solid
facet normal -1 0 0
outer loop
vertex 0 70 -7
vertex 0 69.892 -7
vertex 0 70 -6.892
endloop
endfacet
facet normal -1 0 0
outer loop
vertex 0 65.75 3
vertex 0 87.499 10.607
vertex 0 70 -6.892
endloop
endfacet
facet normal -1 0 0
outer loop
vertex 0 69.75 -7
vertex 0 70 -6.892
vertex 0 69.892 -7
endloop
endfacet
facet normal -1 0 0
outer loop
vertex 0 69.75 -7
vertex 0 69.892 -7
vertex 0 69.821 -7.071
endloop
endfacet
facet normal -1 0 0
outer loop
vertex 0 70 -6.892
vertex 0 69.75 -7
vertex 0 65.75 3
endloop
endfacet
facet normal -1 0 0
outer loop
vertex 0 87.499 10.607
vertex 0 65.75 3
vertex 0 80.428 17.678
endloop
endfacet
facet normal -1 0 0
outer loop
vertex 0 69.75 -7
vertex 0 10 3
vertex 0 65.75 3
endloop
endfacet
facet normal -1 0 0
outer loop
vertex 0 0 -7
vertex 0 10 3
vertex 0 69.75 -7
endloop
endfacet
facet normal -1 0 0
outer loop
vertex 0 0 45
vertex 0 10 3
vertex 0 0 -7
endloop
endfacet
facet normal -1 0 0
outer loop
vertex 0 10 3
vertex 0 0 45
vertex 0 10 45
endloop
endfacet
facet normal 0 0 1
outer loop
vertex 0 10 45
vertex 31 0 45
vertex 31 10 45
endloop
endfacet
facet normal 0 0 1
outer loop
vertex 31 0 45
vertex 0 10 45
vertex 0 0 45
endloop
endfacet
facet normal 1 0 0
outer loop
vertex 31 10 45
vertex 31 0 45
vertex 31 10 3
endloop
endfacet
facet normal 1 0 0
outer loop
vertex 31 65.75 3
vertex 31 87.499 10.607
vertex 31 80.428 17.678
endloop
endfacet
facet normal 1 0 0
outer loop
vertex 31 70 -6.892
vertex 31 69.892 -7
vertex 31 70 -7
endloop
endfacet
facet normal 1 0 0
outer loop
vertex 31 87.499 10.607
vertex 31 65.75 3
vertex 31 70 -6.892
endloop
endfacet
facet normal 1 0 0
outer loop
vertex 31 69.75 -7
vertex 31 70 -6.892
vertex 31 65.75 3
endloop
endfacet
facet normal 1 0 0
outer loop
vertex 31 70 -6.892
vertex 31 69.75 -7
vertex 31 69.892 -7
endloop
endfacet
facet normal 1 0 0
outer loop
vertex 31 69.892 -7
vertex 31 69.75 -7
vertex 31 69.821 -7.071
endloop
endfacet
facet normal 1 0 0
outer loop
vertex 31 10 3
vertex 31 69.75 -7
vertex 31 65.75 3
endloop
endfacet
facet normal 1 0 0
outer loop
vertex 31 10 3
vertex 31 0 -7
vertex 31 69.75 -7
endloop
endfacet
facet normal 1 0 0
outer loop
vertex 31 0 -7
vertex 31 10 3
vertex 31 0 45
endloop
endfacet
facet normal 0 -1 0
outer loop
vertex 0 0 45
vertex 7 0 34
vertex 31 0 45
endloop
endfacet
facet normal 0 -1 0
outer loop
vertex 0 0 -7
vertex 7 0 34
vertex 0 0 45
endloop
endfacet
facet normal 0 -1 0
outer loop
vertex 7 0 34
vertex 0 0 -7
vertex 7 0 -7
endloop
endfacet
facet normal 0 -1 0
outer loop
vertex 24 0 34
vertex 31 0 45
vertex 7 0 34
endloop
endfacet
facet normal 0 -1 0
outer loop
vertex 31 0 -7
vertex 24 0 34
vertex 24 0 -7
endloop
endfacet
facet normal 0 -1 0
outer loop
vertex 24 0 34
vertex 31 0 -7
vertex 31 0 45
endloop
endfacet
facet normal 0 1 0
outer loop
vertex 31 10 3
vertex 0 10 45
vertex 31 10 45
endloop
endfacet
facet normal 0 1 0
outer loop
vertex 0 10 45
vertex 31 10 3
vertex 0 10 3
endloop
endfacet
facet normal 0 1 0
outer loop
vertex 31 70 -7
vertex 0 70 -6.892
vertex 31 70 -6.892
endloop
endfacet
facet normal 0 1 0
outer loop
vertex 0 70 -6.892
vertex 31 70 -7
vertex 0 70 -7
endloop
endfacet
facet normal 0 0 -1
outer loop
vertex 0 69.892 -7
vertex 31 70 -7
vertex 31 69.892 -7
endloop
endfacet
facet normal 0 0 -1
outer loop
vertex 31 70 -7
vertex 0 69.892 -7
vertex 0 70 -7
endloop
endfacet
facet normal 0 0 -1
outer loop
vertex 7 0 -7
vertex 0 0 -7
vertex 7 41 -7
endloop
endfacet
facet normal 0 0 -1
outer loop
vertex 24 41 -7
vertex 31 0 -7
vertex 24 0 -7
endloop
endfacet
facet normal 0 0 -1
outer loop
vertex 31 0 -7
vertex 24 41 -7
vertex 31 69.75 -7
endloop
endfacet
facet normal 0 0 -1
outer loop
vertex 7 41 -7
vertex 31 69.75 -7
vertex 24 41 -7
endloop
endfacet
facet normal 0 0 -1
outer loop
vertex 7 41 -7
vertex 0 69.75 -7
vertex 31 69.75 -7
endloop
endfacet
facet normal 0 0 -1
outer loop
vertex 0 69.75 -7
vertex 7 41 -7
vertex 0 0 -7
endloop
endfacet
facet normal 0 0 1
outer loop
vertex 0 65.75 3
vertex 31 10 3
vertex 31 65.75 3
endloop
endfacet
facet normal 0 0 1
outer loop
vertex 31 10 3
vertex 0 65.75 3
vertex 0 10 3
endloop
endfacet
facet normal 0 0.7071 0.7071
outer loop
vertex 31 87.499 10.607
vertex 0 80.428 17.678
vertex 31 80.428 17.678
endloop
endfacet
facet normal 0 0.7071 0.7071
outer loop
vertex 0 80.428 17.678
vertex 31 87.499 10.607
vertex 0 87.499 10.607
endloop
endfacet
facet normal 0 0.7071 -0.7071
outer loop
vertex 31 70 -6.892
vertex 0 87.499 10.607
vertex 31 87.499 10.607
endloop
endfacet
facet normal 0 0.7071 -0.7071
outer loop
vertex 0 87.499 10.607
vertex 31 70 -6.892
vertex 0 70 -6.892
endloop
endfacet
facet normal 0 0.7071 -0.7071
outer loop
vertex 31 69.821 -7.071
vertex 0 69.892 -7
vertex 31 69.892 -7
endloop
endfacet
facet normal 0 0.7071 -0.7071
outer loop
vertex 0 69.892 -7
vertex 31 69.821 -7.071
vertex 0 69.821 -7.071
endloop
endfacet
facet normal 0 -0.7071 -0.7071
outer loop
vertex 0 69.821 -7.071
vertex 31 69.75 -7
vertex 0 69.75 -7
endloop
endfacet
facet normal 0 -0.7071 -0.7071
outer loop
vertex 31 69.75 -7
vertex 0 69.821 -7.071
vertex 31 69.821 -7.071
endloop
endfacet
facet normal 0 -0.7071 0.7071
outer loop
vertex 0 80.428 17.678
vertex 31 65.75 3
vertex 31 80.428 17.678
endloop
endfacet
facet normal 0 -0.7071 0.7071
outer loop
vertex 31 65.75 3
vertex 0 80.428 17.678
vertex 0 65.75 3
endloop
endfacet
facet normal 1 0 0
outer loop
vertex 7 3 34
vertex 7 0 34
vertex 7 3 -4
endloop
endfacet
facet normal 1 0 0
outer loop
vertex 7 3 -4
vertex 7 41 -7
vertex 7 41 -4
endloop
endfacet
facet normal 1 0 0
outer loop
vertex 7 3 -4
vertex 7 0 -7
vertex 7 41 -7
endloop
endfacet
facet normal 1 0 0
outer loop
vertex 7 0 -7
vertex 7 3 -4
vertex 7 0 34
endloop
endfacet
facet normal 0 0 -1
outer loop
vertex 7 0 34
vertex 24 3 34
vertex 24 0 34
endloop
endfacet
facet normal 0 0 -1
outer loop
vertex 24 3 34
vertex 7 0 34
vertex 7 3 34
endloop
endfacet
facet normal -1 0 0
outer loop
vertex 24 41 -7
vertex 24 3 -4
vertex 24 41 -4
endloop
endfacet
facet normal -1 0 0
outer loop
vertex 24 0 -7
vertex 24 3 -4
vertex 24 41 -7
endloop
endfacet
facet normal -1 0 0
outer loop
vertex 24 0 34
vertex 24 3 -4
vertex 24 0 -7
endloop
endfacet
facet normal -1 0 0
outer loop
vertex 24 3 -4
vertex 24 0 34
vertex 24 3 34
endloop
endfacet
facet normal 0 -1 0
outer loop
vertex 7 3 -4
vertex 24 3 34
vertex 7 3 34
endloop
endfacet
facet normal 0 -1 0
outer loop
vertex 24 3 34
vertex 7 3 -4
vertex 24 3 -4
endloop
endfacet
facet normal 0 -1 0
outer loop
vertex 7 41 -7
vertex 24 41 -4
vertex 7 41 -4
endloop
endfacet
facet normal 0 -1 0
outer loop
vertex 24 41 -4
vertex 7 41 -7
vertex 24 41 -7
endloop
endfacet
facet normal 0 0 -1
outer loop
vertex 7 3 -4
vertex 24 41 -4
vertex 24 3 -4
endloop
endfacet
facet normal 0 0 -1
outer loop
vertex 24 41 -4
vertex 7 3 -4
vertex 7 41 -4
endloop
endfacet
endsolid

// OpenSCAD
difference() {
    mount();
    translate([7,0,-7])
        bracket();
}

module mount() {
    cube(size=[31, 10, 45]);
    rotate([-90, 0, 0])
        translate([0, -3, 0]) 
            cube(size=[31, 10, 70]);
    translate([0, 62.75, 0]) 
        rotate([-45, 0, 0])
            #cube(size=[31, 10, 25]);                
}


module bracket() {
    #cube(size=[17, 3, 41]);
    rotate([-90, 0, 0])
        translate([0, -3, 0]) 
            cube(size=[17, 3, 41]);
    
}


	
module screw(h=20, r=2, r_head=3.5, head_drop=0, slant=i_am_box, poly=false, $fn=0){
    //makes screw with head
    //for substraction as screw hole
    if (poly) {
        cylinder_poly(h=h, r=r, $fn=$fn);
    } else {
        cylinder(h=h, r=r, $fn=$fn);
    }
    if (slant) {
        translate([0, 0, head_drop-0.01]) cylinder(h=r_head, r2=0, r1=r_head, $fn=$fn);
    }

    if (head_drop > 0) {
        translate([0, 0, -0.01]) cylinder(h=head_drop+0.01, r=r_head, $fn=$fn);
    }
}

module plate_screw(long=0) {

        translate([0, 0, -2 - long]) screw(head_drop=14 + long, h=30 + long, r_head=4.5, r=2, $fn=24, slant=true);
    
}
